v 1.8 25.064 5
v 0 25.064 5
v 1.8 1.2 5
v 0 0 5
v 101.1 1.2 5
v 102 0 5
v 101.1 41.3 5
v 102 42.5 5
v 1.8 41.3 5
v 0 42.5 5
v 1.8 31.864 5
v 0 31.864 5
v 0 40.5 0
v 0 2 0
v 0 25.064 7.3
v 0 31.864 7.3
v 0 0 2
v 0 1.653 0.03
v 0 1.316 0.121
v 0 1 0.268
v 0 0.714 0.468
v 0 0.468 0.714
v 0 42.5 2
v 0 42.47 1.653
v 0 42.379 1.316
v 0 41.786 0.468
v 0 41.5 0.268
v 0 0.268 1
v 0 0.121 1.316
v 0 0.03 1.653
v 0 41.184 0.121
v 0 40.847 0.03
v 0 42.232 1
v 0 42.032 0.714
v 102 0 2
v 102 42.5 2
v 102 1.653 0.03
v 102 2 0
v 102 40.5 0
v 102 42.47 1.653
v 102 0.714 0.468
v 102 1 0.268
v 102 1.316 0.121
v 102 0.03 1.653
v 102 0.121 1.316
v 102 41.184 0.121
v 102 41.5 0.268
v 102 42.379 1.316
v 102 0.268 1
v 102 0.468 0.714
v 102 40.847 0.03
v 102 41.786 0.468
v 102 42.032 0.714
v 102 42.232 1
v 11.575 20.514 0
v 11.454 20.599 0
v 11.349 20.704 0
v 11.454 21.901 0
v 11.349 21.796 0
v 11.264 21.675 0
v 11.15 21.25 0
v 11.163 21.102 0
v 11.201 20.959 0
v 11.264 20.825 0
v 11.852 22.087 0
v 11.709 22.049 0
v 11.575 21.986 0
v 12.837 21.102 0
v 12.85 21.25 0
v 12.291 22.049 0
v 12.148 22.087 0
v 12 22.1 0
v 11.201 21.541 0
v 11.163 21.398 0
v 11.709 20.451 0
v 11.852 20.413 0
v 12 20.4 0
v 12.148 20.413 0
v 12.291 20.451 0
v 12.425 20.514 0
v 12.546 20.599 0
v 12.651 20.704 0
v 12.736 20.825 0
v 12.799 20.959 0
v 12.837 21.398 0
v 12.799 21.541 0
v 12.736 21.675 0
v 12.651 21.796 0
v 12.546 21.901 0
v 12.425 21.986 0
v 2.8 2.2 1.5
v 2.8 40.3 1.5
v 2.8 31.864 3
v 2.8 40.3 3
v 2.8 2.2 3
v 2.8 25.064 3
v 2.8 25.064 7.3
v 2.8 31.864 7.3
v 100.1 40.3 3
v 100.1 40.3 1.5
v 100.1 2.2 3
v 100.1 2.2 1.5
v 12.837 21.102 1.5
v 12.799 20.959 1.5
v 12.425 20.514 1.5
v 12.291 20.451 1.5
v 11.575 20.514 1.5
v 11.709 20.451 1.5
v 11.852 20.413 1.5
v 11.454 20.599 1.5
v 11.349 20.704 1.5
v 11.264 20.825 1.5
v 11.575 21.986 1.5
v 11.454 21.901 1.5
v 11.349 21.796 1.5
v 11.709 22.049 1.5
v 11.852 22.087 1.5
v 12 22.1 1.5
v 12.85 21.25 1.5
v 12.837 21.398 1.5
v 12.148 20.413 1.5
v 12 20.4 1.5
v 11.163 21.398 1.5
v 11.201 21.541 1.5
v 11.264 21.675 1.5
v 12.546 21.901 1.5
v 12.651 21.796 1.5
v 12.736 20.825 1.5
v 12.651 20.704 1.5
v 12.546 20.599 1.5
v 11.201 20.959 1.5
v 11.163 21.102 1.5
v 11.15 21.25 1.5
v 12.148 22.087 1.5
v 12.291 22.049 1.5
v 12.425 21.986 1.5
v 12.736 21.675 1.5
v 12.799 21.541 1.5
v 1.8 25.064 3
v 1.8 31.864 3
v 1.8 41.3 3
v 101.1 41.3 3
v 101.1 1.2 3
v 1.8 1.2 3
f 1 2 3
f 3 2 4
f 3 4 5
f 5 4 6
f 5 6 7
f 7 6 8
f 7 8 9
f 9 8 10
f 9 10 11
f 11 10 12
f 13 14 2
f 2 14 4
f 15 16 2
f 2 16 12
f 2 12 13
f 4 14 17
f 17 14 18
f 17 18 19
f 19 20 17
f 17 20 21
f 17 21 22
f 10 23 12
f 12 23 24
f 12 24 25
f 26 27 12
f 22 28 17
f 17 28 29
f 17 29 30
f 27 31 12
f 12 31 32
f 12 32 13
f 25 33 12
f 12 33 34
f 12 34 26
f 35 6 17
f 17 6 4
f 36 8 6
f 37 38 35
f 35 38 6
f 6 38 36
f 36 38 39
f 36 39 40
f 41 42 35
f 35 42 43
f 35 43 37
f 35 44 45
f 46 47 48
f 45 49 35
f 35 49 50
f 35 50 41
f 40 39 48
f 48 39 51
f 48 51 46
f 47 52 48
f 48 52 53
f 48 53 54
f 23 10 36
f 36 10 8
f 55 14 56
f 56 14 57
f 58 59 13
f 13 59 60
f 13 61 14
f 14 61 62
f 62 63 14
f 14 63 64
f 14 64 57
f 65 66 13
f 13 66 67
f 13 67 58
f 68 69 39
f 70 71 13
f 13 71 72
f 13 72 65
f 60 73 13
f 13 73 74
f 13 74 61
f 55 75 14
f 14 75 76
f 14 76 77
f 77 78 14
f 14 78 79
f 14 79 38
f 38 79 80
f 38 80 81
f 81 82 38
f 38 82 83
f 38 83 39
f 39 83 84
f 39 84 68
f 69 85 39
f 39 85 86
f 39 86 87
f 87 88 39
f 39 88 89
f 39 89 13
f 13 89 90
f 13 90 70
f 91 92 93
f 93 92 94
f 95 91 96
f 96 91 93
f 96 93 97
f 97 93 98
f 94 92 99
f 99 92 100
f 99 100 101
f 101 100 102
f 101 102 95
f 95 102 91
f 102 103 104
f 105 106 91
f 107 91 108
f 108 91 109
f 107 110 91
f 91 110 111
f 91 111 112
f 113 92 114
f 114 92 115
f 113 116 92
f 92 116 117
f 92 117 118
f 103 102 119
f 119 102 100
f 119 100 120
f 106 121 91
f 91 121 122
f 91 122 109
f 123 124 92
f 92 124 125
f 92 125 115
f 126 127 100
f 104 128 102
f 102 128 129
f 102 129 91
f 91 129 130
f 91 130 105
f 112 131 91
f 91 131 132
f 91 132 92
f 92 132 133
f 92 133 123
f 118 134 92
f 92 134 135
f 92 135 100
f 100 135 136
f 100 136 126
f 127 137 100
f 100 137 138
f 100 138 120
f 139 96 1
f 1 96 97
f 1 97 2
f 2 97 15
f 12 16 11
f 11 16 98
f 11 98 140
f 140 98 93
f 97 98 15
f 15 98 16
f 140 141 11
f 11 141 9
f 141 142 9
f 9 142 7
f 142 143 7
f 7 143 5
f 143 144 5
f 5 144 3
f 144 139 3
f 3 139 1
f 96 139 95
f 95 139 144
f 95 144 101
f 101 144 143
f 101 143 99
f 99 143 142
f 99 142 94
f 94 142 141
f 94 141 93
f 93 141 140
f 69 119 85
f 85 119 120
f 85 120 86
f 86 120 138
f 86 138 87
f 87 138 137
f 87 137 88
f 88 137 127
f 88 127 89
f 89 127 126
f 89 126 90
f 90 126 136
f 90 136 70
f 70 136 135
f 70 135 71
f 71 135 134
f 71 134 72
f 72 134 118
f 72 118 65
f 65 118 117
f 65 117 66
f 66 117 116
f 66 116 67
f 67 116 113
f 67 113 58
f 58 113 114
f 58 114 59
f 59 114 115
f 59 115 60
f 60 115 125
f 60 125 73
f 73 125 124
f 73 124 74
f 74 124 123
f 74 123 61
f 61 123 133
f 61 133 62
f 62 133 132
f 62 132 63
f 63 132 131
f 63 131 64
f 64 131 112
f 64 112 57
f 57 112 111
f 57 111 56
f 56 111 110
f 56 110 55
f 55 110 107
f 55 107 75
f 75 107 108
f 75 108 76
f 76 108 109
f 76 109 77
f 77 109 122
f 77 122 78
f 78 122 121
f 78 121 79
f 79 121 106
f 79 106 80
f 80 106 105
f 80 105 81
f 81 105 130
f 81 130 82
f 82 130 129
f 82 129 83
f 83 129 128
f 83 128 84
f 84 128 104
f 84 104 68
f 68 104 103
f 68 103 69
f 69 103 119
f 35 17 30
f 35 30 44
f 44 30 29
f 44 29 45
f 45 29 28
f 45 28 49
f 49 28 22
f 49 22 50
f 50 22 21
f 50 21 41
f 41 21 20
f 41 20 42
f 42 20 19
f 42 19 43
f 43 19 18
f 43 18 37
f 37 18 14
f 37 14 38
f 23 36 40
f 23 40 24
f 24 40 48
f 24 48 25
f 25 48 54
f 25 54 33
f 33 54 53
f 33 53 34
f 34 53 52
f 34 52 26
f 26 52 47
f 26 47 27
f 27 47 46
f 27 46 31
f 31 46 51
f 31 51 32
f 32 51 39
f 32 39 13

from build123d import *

# Parameters (mm, degrees)
SKETCH2_W           = 102
SKETCH2_H           = 42.5
BOSS_EXTRUDE1_DEPTH = 5
SKETCH3_W           = 97.3
SKETCH3_H           = 38.1
CUT_EXTRUDE1_DEPTH  = 3.5
SKETCH4_W           = 2.8
SKETCH4_H           = 6.8
BOSS_EXTRUDE3_DEPTH = 2.3
CUT_EXTRUDE4_DEPTH  = 2
SKETCH9_R           = 0.85
CUT_EXTRUDE5_DEPTH  = 31
FILLET1_R           = 2


with BuildPart() as part:
    # Sketch2 → Boss-Extrude1 (new body)
    with BuildSketch(Plane.XY):
        with Locations((51, 21.25)):
            Rectangle(SKETCH2_W, SKETCH2_H)
    extrude(amount=BOSS_EXTRUDE1_DEPTH)

    # Sketch3 → Cut-Extrude1 (cut)
    with BuildSketch(Plane.XY.offset(5)):
        with Locations((51.45, 21.25)):
            Rectangle(SKETCH3_W, SKETCH3_H)
    extrude(amount=-CUT_EXTRUDE1_DEPTH, mode=Mode.SUBTRACT)

    # Sketch4 → Boss-Extrude3 (add)
    with BuildSketch(Plane.XY.offset(5)):
        with Locations((1.4, 28.4635072)):
            Rectangle(SKETCH4_W, SKETCH4_H)
    extrude(amount=BOSS_EXTRUDE3_DEPTH)

    # Sketch8 → Cut-Extrude4 (cut)
    with BuildSketch(Plane.XY.offset(5)):
        Polygon((2.8, 31.8635072), (1.8, 31.8635072), (1.8, 41.3), (101.1, 41.3), (101.1, 1.2), (1.8, 1.2), (1.8, 25.0635072), (2.8, 25.0635072), (2.8, 2.2), (100.1, 2.2), (100.1, 40.3), (2.8, 40.3), align=None)
    extrude(amount=-CUT_EXTRUDE4_DEPTH, mode=Mode.SUBTRACT)

    # Sketch9 → Cut-Extrude5 (cut)
    with BuildSketch(Plane.XY.offset(1.5)):
        with Locations((12, 21.25)):
            Circle(SKETCH9_R)
    extrude(amount=-CUT_EXTRUDE5_DEPTH, mode=Mode.SUBTRACT)

    # Fillet1
    fillet1_edges = [part.edges().sort_by_distance(p)[0] for p in [
        (51, 42.5, 0),
        (51, 0, 0),
    ]]
    fillet(fillet1_edges, radius=FILLET1_R)


solid = part.part
